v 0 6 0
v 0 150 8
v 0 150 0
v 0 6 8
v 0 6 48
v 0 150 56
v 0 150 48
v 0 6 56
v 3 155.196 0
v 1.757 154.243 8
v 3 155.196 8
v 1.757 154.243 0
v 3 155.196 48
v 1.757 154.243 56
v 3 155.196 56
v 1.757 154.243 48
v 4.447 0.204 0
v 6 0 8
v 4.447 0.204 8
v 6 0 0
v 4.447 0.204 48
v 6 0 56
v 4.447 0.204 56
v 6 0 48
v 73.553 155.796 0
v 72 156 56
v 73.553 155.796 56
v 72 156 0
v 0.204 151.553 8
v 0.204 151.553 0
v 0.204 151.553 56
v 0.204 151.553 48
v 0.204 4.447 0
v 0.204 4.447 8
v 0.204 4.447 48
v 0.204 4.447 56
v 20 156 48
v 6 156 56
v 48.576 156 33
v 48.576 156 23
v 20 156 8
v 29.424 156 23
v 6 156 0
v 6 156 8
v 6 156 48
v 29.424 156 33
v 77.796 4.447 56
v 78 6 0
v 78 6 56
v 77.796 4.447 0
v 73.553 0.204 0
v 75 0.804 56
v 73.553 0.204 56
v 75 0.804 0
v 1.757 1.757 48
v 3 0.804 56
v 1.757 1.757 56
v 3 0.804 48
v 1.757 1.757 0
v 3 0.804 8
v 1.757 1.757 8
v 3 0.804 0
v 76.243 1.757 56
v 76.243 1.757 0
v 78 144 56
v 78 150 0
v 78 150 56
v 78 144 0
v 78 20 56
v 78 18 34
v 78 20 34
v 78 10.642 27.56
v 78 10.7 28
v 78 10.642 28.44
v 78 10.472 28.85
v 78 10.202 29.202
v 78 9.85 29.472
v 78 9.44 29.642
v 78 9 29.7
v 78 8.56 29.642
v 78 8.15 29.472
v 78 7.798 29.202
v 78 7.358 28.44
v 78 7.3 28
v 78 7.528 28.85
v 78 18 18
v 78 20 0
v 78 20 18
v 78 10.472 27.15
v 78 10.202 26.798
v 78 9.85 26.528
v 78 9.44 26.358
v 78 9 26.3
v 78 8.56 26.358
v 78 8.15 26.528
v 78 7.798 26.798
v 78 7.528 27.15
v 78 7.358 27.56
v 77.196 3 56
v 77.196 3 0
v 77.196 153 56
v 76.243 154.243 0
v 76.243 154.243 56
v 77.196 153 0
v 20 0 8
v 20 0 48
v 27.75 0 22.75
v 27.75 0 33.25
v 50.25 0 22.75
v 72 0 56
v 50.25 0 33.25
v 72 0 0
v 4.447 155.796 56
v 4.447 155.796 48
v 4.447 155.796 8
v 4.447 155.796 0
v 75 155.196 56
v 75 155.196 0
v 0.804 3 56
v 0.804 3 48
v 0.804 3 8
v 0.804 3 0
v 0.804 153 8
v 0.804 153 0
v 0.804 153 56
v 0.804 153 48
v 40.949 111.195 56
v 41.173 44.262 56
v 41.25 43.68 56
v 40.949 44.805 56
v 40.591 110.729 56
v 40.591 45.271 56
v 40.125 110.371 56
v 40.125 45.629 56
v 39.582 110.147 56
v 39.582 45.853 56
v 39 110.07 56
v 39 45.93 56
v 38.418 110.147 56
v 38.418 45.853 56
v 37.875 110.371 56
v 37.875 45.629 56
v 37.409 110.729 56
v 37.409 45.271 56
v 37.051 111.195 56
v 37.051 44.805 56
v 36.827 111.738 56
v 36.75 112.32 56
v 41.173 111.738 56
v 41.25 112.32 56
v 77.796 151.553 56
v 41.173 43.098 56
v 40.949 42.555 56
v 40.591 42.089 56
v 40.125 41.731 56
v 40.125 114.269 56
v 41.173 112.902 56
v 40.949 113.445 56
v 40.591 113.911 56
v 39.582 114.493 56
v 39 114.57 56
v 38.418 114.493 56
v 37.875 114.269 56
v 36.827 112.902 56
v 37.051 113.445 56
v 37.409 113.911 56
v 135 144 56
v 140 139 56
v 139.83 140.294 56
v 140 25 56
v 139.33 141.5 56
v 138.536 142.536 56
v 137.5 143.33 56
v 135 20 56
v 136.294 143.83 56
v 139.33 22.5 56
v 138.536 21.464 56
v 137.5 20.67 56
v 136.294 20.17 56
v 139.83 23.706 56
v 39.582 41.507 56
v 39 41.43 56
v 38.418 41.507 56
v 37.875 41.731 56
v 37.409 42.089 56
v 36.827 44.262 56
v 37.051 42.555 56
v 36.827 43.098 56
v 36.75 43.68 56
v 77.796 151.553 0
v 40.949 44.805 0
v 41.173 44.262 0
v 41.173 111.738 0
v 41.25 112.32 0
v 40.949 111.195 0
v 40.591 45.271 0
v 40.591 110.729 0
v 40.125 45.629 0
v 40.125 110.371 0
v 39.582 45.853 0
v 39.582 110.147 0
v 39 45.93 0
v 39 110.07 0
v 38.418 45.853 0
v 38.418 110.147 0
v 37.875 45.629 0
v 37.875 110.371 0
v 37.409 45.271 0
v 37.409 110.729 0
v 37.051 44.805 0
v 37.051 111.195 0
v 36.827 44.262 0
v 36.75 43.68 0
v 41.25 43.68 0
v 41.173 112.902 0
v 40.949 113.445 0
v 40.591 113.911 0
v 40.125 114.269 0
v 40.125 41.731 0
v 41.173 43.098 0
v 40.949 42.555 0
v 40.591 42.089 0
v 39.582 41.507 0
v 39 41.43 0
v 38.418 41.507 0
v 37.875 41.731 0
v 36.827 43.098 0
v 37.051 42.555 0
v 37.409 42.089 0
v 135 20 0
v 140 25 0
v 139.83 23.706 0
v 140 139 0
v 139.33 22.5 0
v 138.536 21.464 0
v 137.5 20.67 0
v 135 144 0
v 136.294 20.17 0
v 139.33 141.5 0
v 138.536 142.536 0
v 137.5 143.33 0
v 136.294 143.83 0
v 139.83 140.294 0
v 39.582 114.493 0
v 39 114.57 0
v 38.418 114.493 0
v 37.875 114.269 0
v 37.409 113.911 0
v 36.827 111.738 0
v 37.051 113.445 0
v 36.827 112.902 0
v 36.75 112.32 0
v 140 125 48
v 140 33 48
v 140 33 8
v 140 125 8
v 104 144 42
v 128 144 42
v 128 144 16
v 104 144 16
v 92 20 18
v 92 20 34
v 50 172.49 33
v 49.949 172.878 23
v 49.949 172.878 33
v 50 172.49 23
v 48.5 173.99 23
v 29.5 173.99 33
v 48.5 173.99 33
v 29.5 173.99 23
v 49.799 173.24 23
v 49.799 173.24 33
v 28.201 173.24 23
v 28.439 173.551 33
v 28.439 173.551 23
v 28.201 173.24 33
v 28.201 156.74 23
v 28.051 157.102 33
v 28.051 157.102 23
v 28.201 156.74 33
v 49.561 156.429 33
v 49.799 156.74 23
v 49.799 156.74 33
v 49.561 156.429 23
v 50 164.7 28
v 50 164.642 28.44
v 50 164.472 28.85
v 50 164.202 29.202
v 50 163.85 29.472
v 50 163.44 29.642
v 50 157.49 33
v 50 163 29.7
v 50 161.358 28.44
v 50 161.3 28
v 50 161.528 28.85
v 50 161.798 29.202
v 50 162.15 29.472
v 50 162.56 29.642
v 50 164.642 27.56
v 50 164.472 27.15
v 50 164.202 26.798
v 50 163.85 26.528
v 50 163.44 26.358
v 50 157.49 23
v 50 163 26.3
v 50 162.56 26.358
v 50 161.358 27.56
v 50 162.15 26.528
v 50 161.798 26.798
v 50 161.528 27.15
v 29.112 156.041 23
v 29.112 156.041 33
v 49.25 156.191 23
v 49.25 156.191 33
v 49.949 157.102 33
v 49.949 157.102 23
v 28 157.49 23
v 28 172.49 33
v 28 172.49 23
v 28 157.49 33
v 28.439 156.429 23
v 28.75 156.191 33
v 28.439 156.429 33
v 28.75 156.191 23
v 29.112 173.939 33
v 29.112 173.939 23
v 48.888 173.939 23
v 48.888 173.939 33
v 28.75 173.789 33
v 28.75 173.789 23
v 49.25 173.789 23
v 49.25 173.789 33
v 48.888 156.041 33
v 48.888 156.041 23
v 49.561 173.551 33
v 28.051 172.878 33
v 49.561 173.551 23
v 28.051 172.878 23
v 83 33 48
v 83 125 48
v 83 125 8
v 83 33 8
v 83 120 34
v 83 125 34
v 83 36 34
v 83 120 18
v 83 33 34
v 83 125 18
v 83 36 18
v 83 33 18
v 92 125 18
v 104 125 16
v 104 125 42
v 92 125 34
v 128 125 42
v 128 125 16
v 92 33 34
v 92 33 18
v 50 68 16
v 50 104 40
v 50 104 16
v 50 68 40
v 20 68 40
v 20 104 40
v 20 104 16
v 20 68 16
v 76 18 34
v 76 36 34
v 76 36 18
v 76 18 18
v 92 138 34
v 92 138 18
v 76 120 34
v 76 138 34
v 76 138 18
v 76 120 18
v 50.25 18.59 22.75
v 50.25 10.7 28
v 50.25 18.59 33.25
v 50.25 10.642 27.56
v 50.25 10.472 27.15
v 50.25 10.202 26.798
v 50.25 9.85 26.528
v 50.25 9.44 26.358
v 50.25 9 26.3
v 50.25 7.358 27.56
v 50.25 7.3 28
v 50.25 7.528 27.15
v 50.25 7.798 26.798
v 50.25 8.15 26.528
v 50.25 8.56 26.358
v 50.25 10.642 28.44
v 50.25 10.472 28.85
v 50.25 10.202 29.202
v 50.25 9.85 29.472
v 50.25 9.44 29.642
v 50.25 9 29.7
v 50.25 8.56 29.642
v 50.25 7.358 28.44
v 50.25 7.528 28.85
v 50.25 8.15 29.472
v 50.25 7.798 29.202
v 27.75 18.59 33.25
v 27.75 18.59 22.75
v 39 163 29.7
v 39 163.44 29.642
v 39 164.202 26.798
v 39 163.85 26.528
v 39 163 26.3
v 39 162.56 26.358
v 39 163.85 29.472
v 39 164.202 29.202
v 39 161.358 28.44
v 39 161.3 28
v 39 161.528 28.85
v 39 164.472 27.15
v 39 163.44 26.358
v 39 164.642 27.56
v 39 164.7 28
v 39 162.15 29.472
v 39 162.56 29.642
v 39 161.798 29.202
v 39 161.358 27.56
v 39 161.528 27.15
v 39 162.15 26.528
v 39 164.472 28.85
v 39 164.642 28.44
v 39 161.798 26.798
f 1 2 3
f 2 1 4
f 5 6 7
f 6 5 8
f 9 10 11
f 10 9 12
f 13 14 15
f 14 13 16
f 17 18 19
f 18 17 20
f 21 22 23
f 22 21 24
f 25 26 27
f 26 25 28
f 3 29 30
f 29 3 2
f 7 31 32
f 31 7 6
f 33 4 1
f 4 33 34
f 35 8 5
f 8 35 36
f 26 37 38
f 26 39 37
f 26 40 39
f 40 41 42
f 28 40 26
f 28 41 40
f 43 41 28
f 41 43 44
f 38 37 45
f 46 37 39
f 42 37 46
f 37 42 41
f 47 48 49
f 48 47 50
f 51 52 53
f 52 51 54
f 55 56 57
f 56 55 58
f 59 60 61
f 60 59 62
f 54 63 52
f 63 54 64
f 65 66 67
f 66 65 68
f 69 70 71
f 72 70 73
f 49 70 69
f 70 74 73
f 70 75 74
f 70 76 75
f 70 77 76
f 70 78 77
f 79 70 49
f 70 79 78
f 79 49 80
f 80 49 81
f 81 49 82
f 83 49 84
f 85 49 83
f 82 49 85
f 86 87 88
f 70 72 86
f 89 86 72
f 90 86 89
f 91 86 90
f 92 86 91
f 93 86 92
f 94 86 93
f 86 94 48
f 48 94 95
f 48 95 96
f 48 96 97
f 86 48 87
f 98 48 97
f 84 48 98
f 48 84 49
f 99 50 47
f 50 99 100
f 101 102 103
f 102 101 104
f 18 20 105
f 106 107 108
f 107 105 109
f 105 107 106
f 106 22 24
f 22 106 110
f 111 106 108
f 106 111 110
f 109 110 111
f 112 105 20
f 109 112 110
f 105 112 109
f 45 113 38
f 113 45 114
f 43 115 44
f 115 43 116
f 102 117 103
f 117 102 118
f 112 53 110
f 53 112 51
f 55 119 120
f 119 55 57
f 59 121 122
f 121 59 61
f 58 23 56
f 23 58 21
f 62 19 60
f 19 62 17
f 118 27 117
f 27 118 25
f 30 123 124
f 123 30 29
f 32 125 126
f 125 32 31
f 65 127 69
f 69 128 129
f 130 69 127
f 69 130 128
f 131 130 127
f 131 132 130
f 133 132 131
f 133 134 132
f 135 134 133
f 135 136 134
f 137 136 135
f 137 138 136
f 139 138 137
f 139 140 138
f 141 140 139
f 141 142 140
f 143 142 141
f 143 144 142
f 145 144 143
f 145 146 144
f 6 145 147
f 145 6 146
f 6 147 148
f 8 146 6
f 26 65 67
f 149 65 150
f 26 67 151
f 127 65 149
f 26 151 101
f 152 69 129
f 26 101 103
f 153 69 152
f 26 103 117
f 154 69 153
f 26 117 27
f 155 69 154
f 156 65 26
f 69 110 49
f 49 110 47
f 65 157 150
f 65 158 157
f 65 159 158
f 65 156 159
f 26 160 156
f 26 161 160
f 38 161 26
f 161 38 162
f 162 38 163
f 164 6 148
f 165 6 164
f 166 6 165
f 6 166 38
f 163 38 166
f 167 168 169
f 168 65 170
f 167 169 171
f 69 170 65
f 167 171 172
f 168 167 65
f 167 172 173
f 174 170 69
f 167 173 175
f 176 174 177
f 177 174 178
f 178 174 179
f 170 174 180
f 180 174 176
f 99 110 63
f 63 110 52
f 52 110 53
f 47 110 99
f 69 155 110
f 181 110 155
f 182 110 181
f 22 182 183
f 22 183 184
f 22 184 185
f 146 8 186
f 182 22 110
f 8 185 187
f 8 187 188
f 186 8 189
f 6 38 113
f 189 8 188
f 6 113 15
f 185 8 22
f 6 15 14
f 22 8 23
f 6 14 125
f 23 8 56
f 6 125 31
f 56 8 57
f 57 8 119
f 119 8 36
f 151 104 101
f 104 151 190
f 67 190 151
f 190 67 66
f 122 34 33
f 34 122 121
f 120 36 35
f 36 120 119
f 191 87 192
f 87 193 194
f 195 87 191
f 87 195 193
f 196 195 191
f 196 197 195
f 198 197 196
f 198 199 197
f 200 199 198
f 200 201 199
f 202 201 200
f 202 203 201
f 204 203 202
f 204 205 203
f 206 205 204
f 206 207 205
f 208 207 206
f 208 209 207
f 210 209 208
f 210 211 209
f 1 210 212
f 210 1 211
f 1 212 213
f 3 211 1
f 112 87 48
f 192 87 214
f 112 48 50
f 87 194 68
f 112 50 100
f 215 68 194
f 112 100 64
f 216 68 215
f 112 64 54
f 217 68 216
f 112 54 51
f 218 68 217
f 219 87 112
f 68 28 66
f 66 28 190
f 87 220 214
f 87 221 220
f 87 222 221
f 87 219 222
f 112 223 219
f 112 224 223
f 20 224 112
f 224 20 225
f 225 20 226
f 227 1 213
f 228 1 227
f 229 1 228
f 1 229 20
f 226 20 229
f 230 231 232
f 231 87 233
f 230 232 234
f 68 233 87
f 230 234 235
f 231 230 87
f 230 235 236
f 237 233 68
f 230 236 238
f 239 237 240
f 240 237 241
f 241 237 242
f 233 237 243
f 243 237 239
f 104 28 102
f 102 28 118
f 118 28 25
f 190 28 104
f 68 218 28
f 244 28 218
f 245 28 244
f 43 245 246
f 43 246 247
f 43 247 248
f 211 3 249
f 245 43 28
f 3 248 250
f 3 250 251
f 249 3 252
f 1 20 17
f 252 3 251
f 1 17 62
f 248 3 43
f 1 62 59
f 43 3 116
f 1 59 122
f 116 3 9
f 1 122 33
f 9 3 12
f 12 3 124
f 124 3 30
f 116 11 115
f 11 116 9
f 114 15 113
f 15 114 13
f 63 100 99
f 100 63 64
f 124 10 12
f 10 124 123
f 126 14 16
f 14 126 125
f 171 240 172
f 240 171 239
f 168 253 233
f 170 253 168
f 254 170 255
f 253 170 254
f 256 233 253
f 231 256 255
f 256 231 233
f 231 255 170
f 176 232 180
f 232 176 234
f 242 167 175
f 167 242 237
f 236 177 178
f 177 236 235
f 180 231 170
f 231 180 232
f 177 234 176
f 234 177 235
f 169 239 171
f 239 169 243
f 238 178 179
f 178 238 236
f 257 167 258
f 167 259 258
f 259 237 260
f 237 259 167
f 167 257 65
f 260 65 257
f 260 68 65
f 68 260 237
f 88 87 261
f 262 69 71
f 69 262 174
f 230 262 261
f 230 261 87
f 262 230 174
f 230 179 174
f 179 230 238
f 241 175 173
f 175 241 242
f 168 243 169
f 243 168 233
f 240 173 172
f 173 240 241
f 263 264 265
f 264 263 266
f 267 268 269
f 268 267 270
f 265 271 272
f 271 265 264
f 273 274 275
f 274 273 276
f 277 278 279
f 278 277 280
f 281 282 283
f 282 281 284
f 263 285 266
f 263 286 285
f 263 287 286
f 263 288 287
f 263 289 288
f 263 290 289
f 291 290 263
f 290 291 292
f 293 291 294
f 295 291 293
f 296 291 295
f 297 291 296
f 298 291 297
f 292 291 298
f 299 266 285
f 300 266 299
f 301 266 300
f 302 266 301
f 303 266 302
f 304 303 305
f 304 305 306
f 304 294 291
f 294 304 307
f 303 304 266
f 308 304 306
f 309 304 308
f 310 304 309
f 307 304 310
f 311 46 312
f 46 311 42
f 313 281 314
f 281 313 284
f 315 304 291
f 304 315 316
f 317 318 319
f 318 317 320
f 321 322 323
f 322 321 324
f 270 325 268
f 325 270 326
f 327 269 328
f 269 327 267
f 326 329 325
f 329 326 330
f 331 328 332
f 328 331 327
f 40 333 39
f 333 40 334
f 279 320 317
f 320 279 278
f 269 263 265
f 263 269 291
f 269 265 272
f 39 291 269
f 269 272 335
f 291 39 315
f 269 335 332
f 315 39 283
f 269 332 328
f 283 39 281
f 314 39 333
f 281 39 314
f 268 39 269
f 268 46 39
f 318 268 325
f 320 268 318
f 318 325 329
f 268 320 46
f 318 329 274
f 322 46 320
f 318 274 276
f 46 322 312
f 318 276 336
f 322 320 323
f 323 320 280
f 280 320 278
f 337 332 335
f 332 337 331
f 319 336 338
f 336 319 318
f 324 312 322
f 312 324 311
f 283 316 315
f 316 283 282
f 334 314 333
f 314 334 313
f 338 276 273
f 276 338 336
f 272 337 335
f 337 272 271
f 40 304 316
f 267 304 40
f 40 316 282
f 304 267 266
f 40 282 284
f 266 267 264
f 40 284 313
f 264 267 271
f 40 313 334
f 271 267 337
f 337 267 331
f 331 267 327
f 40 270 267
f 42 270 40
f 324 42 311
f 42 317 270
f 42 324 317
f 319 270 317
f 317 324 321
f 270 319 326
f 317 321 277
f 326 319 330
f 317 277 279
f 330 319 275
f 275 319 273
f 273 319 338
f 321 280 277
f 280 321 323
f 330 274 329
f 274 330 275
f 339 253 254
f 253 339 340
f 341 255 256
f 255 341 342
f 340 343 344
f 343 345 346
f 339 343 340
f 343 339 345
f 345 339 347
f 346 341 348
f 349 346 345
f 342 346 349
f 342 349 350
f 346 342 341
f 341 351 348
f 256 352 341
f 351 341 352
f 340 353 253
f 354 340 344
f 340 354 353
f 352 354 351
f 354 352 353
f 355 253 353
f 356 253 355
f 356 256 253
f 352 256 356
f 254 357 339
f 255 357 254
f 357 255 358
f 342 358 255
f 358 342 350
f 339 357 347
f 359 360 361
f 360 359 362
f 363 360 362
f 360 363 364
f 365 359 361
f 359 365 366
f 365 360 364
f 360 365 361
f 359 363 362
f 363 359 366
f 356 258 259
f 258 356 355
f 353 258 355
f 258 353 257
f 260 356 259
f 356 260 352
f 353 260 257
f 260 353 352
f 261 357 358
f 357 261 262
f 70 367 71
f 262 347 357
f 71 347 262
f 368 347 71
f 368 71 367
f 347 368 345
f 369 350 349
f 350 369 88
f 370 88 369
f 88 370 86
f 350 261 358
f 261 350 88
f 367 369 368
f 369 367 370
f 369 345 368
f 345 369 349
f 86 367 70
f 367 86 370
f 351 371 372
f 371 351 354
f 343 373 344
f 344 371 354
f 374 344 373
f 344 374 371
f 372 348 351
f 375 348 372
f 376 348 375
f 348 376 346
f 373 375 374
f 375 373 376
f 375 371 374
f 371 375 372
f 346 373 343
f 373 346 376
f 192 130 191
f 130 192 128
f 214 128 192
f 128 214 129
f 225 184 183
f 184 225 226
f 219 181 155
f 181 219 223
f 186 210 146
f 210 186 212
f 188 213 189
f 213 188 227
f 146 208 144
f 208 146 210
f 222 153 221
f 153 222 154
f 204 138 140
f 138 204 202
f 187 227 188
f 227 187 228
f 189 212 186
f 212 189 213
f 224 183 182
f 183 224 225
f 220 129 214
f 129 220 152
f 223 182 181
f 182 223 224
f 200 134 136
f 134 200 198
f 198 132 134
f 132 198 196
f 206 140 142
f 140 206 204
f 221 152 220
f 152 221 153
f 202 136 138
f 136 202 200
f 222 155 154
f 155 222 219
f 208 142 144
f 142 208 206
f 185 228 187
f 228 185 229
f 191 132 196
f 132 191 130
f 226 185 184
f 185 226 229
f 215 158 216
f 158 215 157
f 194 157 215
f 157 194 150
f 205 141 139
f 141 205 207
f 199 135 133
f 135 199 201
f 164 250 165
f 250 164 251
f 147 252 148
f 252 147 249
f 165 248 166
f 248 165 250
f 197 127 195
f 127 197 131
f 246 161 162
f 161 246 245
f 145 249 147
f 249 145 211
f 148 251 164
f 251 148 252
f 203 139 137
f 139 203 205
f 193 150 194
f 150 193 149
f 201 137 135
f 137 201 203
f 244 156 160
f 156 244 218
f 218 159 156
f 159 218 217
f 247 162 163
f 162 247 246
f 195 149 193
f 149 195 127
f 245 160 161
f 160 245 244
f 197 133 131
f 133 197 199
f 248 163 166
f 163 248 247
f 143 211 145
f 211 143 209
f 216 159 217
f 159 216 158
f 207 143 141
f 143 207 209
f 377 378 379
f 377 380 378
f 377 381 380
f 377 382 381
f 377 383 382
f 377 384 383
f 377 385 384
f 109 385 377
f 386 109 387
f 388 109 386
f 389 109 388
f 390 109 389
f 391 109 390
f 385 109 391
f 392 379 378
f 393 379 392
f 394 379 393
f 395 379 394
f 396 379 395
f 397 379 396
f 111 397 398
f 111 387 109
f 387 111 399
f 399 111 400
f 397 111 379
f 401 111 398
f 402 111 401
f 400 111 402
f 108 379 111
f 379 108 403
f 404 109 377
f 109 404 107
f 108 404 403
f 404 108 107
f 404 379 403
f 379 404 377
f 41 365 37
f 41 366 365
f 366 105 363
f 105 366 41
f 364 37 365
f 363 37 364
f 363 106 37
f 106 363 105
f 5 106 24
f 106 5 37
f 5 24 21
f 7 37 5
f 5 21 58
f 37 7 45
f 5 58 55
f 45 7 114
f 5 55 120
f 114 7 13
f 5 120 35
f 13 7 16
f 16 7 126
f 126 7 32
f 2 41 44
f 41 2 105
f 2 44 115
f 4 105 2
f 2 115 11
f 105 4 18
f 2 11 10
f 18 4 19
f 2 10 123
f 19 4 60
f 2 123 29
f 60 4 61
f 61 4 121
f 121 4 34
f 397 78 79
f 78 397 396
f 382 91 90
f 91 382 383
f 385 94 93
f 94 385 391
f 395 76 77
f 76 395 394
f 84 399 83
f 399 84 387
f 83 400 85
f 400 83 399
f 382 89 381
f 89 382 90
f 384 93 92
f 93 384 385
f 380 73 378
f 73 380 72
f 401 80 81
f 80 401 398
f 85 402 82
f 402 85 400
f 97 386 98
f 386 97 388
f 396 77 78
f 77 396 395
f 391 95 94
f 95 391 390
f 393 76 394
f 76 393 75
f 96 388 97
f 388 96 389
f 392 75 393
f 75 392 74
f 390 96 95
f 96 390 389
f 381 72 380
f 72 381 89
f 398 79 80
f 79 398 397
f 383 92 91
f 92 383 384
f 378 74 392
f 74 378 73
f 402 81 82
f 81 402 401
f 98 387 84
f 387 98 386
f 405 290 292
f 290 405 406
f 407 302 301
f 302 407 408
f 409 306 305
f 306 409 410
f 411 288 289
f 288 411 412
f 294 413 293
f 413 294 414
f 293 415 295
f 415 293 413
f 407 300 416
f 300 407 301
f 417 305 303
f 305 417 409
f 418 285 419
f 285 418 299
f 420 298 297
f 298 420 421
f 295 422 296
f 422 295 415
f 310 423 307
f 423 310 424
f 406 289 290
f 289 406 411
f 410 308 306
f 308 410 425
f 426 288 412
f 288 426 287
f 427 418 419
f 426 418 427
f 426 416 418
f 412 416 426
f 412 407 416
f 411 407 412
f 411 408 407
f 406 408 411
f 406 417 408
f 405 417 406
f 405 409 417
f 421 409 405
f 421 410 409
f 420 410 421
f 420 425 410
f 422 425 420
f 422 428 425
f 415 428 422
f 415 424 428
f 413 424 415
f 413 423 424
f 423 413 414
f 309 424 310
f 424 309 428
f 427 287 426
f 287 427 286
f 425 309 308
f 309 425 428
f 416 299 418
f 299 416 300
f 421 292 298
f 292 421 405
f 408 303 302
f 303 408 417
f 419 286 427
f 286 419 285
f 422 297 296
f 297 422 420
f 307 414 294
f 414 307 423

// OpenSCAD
// file: 00_parameters.scad
// TenderCells DoorCell V1 shared parameters
// Units: millimeters

overall_w = 438;
overall_h = 368;
frame_depth = 56;

clear_w = 242;
clear_h = 312;

rail_thick = 32;
jamb_w = 48;
motor_jamb_w = 78;

// Printability targets
target_bed_xy = 220;
comfortable_part_max = 180;

// Modular frame split dimensions
top_seg_len = overall_w / 3;
bottom_seg_len = overall_w / 3;
left_jamb_seg_h = overall_h / 2;
right_lower_h = 118;
right_motor_h = 156;
right_upper_h = overall_h - right_lower_h - right_motor_h;

// Low-cost electronics envelope used by DoorCell V1.4.
// These dimensions are based on common generic modules, not a custom PCB.
esp32_board = [58, 31, 8];
drv8871_board = [31, 26, 7];
current_sensor_board = [26, 22, 7];
lm2596_board = [44, 22, 14];
inline_fuse_body = [45, 15, 14];
cn3065_board = [44, 24, 8];
electronics_clearance = 1.5;
controller_wall = 3;
controller_box_w = 170;
controller_box_h = 115;
controller_box_d = 46;
controller_lid_insert_offset = 11;
controller_m12_gland_d = 12.8;
controller_m10_gland_d = 10.6;
controller_m8_gland_d = 8.4;
controller_button_d = 16.2;

// Brass heat-set/push-in insert features.
insert_post_d = 8.0;
insert_post_h = 8.0;
insert_pilot_d = 4.6;
insert_pilot_depth = 6.5;
hold_down_screw_clearance = 3.4;

// Motor envelope for common 25GA/JGA25-370 gearmotors with optional encoder.
motor_body_d = 25.0;
motor_body_clearance_d = 27.2;
motor_body_len = 65;
motor_encoder_clearance = 16;
motor_mount_plate = [72, 92, 12];
motor_mount_cradle = [54, 74, 28];

// Optional solar add-on.
solar_panel_w = 145;
solar_panel_h = 145;
solar_panel_t = 4.0;
solar_panel_frame_border = 10;
solar_panel_frame_w = solar_panel_w + 2*solar_panel_frame_border;
solar_panel_frame_h = solar_panel_h + 2*solar_panel_frame_border;
solar_panel_back_depth = 14;
solar_panel_lip_overlap = 3;
solar_ball_d = 22;
solar_ball_socket_clearance = 0.45;
solar_mount_m5 = 5.4;

// Tongue-and-groove frame joints
// Fit target: common FDM printers with PETG/ASA.
// Clearance is per side, so sockets add 2x this value.
tongue_len = 18;
tongue_w = 22;
tongue_z = 10;
tongue_clearance_side = 0.25;
tongue_socket_depth_extra = 0.60;

door_w = 270;
door_h = 326;
door_t = 8;

track_gap = 11;
track_depth = 12;

// Rack-and-pinion drive
// Metric module gear math:
// circular_pitch = PI * module
// pitch_diameter = module * tooth_count
// outside_diameter = module * (tooth_count + 2)
// root_diameter = module * (tooth_count - 2.5)
gear_module = 2.0;
pressure_angle = 20;
gear_backlash = 0.20; // mm removed from rack tooth thickness at pitch line

pinion_teeth = 16;
pinion_pitch_d = gear_module * pinion_teeth;
pinion_pitch_radius = pinion_pitch_d / 2;
pinion_outer_d = gear_module * (pinion_teeth + 2);
pinion_outer_radius = pinion_outer_d / 2;
pinion_root_d = gear_module * (pinion_teeth - 2.5);
pinion_root_radius = pinion_root_d / 2;
pinion_thick = 12;
shaft_d = 6.2;

rack_tooth_count = 15;
rack_circular_pitch = 3.141592653589793 * gear_module;
rack_len = rack_circular_pitch * rack_tooth_count;
rack_w = 18;
rack_t = 6;
rack_addendum = gear_module;
rack_dedendum = 1.25 * gear_module;
rack_tooth_h = rack_addendum + rack_dedendum;
rack_pitch_line_z = rack_dedendum;
rack_tooth_pitch_thickness = rack_circular_pitch / 2 - gear_backlash;
rack_tooth_top_w = rack_tooth_pitch_thickness - 2 * rack_addendum * tan(pressure_angle);
rack_tooth_root_w = rack_tooth_pitch_thickness + 2 * rack_dedendum * tan(pressure_angle);

screw_m3 = 3.4;
screw_m4 = 4.5;
insert_m3 = 4.6;

eps = 0.01;

module rounded_box(size=[10,10,10], r=2) {
  hull() {
    translate([r,r,0]) cylinder(h=size[2], r=r, $fn=24);
    translate([size[0]-r,r,0]) cylinder(h=size[2], r=r, $fn=24);
    translate([r,size[1]-r,0]) cylinder(h=size[2], r=r, $fn=24);
    translate([size[0]-r,size[1]-r,0]) cylinder(h=size[2], r=r, $fn=24);
  }
}

module m3_clearance_hole(h=20) {
  cylinder(h=h, d=screw_m3, $fn=24);
}

module m4_clearance_hole(h=20) {
  cylinder(h=h, d=screw_m4, $fn=24);
}

module heat_insert_hole(h=6) {
  cylinder(h=h, d=insert_m3, $fn=24);
}

module heat_insert_post(h=insert_post_h, d=insert_post_d) {
  difference() {
    cylinder(h=h, d=d, $fn=32);
    translate([0,0,h-insert_pilot_depth+eps])
      cylinder(h=insert_pilot_depth+eps, d=insert_pilot_d, $fn=24);
  }
}

module m3_hold_down_slot(length=10, h=4) {
  hull() {
    translate([-length/2,0,0]) cylinder(h=h, d=hold_down_screw_clearance, $fn=20);
    translate([ length/2,0,0]) cylinder(h=h, d=hold_down_screw_clearance, $fn=20);
  }
}

module rail_channel(length=100) {
  cube([length, track_gap, track_depth]);
}

module frame_tongue_x() {
  rounded_box([tongue_len, tongue_w, tongue_z], r=1.5);
}

module frame_socket_x() {
  cube([
    tongue_len + tongue_socket_depth_extra,
    tongue_w + 2*tongue_clearance_side,
    tongue_z + 2*tongue_clearance_side
  ]);
}

module frame_tongue_y() {
  rounded_box([tongue_w, tongue_len, tongue_z], r=1.5);
}

module frame_socket_y() {
  cube([
    tongue_w + 2*tongue_clearance_side,
    tongue_len + tongue_socket_depth_extra,
    tongue_z + 2*tongue_clearance_side
  ]);
}

module rack_teeth(len=rack_len) {
  teeth = floor(len / rack_circular_pitch);
  for (i=[0:teeth-1]) {
    center = i*rack_circular_pitch + rack_circular_pitch/2;
    translate([0, 0, rack_t-0.20])
      linear_extrude(height=rack_w)
        polygon(points=[
          [center - rack_tooth_root_w/2, 0],
          [center + rack_tooth_root_w/2, 0],
          [center + rack_tooth_top_w/2, rack_tooth_h],
          [center - rack_tooth_top_w/2, rack_tooth_h]
        ]);
  }
}

function polar_point(r, a) = [r * cos(a), r * sin(a)];
// file: frame_modular_common.scad
include <00_parameters.scad>

module horizontal_frame_segment(seg_len=top_seg_len, rail_kind="top", joint_left="socket", joint_right="tongue") {
  difference() {
    union() {
      rounded_box([seg_len, rail_thick, frame_depth], r=6);

      if (joint_right == "tongue") {
        translate([seg_len - eps, rail_thick/2 - tongue_w/2, frame_depth/2 - tongue_z/2])
          frame_tongue_x();
      }
    }

    // Tongue receiver from previous segment.
    if (joint_left == "socket") {
      translate([
        -eps,
        rail_thick/2 - (tongue_w + 2*tongue_clearance_side)/2,
        frame_depth/2 - (tongue_z + 2*tongue_clearance_side)/2
      ])
        frame_socket_x();
    }

    // Sliding door guide channel.
    if (rail_kind == "top") {
      translate([8, rail_thick-track_gap-5, 8])
        rail_channel(length=seg_len-16);
    } else {
      translate([8, 5, frame_depth-track_depth-8])
        rail_channel(length=seg_len-16);

      // Drain slots for bottom rail.
      for (x=[seg_len*0.25, seg_len*0.5, seg_len*0.75]) {
        translate([x-10, rail_thick/2-2, frame_depth-4])
          cube([20, 4, 10]);
      }
    }

    // Coop mounting holes.
    for (x=[18, seg_len-18]) {
      translate([x, rail_thick/2, -eps])
        m4_clearance_hole(h=frame_depth+2);
    }

    // Cross-bolt holes near frame split joints.
    if (joint_left == "socket") {
      translate([tongue_len/2, rail_thick/2, frame_depth/2])
        rotate([90,0,0]) m3_clearance_hole(h=rail_thick+2);
    }
    if (joint_right == "tongue") {
      translate([seg_len + tongue_len/2 - 2, rail_thick/2, frame_depth/2])
        rotate([90,0,0]) m3_clearance_hole(h=rail_thick+2);
    }
  }
}

module left_jamb_segment(seg_h=left_jamb_seg_h, joint_bottom="socket", joint_top="tongue", corner_bottom=false, corner_top=false) {
  difference() {
    union() {
      rounded_box([jamb_w, seg_h, frame_depth], r=6);

      if (joint_top == "tongue") {
        translate([jamb_w/2 - tongue_w/2, seg_h - eps, frame_depth/2 - tongue_z/2])
          frame_tongue_y();
      }
    }

    if (joint_bottom == "socket") {
      translate([
        jamb_w/2 - (tongue_w + 2*tongue_clearance_side)/2,
        -eps,
        frame_depth/2 - (tongue_z + 2*tongue_clearance_side)/2
      ])
        frame_socket_y();
    }

    // Door pocket relief.
    translate([jamb_w-18, 0, 8])
      cube([16, seg_h, frame_depth-16]);

    // Coop mounting holes.
    for (y=[seg_h*0.28, seg_h*0.72]) {
      translate([jamb_w/2, y, -eps]) m4_clearance_hole(h=frame_depth+2);
    }

    // Rail-to-jamb corner holes.
    if (corner_bottom) {
      translate([jamb_w-10, 16, frame_depth/2])
        rotate([0,90,0]) m3_clearance_hole(h=20);
    }
    if (corner_top) {
      translate([jamb_w-10, seg_h-16, frame_depth/2])
        rotate([0,90,0]) m3_clearance_hole(h=20);
    }

    // Cross-bolt through tongue-and-groove.
    if (joint_bottom == "socket") {
      translate([jamb_w/2, tongue_len/2, frame_depth/2])
        rotate([0,90,0]) m3_clearance_hole(h=jamb_w+2);
    }
    if (joint_top == "tongue") {
      translate([jamb_w/2, seg_h + tongue_len/2 - 2, frame_depth/2])
        rotate([0,90,0]) m3_clearance_hole(h=jamb_w+2);
    }
  }
}

module right_jamb_segment(seg_h=120, has_motor_bay=false, joint_bottom="socket", joint_top="tongue", corner_bottom=false, corner_top=false) {
  difference() {
    union() {
      rounded_box([motor_jamb_w, seg_h, frame_depth], r=6);

      if (has_motor_bay) {
        translate([motor_jamb_w-8, 20, 0])
          rounded_box([70, seg_h-32, frame_depth], r=5);
      }

      if (joint_top == "tongue") {
        translate([motor_jamb_w/2 - tongue_w/2, seg_h - eps, frame_depth/2 - tongue_z/2])
          frame_tongue_y();
      }
    }

    if (joint_bottom == "socket") {
      translate([
        motor_jamb_w/2 - (tongue_w + 2*tongue_clearance_side)/2,
        -eps,
        frame_depth/2 - (tongue_z + 2*tongue_clearance_side)/2
      ])
        frame_socket_y();
    }

    // Door pocket relief.
    translate([0, 0, 8])
      cube([20, seg_h, frame_depth-16]);

    if (has_motor_bay) {
      // Motor cassette pocket sized for the revised 25GA mount.
      translate([motor_jamb_w+5, 33, 8])
        cube([62, 92, 40]);

      // Pinion/rack engagement window.
      translate([4, 68, 16])
        cube([46, 36, 24]);

      // Motor/control harness pass-through for M12-style cable gland routing.
      translate([motor_jamb_w+26, seg_h-42, 16])
        cube([24, 34, 26]);

      // Limit switch lead pass-throughs.
      translate([motor_jamb_w-2, 18, 18])
        cube([16, 18, 16]);
      translate([motor_jamb_w-2, seg_h-36, 18])
        cube([16, 18, 16]);
    }

    // Coop mounting holes.
    for (y=[seg_h*0.28, seg_h*0.72]) {
      translate([motor_jamb_w/2, y, -eps]) m4_clearance_hole(h=frame_depth+2);
    }

    // Rail-to-jamb corner holes.
    if (corner_bottom) {
      translate([10, 16, frame_depth/2])
        rotate([0,90,0]) m3_clearance_hole(h=20);
    }
    if (corner_top) {
      translate([10, seg_h-16, frame_depth/2])
        rotate([0,90,0]) m3_clearance_hole(h=20);
    }

    // Cross-bolt through tongue-and-groove.
    if (joint_bottom == "socket") {
      translate([motor_jamb_w/2, tongue_len/2, frame_depth/2])
        rotate([0,90,0]) m3_clearance_hole(h=motor_jamb_w+2);
    }
    if (joint_top == "tongue") {
      translate([motor_jamb_w/2, seg_h + tongue_len/2 - 2, frame_depth/2])
        rotate([0,90,0]) m3_clearance_hole(h=motor_jamb_w+2);
    }
  }
}
// main file
include <frame_modular_common.scad>

right_jamb_segment(seg_h=right_motor_h, has_motor_bay=true, joint_bottom="socket", joint_top="tongue", corner_bottom=false, corner_top=false);
